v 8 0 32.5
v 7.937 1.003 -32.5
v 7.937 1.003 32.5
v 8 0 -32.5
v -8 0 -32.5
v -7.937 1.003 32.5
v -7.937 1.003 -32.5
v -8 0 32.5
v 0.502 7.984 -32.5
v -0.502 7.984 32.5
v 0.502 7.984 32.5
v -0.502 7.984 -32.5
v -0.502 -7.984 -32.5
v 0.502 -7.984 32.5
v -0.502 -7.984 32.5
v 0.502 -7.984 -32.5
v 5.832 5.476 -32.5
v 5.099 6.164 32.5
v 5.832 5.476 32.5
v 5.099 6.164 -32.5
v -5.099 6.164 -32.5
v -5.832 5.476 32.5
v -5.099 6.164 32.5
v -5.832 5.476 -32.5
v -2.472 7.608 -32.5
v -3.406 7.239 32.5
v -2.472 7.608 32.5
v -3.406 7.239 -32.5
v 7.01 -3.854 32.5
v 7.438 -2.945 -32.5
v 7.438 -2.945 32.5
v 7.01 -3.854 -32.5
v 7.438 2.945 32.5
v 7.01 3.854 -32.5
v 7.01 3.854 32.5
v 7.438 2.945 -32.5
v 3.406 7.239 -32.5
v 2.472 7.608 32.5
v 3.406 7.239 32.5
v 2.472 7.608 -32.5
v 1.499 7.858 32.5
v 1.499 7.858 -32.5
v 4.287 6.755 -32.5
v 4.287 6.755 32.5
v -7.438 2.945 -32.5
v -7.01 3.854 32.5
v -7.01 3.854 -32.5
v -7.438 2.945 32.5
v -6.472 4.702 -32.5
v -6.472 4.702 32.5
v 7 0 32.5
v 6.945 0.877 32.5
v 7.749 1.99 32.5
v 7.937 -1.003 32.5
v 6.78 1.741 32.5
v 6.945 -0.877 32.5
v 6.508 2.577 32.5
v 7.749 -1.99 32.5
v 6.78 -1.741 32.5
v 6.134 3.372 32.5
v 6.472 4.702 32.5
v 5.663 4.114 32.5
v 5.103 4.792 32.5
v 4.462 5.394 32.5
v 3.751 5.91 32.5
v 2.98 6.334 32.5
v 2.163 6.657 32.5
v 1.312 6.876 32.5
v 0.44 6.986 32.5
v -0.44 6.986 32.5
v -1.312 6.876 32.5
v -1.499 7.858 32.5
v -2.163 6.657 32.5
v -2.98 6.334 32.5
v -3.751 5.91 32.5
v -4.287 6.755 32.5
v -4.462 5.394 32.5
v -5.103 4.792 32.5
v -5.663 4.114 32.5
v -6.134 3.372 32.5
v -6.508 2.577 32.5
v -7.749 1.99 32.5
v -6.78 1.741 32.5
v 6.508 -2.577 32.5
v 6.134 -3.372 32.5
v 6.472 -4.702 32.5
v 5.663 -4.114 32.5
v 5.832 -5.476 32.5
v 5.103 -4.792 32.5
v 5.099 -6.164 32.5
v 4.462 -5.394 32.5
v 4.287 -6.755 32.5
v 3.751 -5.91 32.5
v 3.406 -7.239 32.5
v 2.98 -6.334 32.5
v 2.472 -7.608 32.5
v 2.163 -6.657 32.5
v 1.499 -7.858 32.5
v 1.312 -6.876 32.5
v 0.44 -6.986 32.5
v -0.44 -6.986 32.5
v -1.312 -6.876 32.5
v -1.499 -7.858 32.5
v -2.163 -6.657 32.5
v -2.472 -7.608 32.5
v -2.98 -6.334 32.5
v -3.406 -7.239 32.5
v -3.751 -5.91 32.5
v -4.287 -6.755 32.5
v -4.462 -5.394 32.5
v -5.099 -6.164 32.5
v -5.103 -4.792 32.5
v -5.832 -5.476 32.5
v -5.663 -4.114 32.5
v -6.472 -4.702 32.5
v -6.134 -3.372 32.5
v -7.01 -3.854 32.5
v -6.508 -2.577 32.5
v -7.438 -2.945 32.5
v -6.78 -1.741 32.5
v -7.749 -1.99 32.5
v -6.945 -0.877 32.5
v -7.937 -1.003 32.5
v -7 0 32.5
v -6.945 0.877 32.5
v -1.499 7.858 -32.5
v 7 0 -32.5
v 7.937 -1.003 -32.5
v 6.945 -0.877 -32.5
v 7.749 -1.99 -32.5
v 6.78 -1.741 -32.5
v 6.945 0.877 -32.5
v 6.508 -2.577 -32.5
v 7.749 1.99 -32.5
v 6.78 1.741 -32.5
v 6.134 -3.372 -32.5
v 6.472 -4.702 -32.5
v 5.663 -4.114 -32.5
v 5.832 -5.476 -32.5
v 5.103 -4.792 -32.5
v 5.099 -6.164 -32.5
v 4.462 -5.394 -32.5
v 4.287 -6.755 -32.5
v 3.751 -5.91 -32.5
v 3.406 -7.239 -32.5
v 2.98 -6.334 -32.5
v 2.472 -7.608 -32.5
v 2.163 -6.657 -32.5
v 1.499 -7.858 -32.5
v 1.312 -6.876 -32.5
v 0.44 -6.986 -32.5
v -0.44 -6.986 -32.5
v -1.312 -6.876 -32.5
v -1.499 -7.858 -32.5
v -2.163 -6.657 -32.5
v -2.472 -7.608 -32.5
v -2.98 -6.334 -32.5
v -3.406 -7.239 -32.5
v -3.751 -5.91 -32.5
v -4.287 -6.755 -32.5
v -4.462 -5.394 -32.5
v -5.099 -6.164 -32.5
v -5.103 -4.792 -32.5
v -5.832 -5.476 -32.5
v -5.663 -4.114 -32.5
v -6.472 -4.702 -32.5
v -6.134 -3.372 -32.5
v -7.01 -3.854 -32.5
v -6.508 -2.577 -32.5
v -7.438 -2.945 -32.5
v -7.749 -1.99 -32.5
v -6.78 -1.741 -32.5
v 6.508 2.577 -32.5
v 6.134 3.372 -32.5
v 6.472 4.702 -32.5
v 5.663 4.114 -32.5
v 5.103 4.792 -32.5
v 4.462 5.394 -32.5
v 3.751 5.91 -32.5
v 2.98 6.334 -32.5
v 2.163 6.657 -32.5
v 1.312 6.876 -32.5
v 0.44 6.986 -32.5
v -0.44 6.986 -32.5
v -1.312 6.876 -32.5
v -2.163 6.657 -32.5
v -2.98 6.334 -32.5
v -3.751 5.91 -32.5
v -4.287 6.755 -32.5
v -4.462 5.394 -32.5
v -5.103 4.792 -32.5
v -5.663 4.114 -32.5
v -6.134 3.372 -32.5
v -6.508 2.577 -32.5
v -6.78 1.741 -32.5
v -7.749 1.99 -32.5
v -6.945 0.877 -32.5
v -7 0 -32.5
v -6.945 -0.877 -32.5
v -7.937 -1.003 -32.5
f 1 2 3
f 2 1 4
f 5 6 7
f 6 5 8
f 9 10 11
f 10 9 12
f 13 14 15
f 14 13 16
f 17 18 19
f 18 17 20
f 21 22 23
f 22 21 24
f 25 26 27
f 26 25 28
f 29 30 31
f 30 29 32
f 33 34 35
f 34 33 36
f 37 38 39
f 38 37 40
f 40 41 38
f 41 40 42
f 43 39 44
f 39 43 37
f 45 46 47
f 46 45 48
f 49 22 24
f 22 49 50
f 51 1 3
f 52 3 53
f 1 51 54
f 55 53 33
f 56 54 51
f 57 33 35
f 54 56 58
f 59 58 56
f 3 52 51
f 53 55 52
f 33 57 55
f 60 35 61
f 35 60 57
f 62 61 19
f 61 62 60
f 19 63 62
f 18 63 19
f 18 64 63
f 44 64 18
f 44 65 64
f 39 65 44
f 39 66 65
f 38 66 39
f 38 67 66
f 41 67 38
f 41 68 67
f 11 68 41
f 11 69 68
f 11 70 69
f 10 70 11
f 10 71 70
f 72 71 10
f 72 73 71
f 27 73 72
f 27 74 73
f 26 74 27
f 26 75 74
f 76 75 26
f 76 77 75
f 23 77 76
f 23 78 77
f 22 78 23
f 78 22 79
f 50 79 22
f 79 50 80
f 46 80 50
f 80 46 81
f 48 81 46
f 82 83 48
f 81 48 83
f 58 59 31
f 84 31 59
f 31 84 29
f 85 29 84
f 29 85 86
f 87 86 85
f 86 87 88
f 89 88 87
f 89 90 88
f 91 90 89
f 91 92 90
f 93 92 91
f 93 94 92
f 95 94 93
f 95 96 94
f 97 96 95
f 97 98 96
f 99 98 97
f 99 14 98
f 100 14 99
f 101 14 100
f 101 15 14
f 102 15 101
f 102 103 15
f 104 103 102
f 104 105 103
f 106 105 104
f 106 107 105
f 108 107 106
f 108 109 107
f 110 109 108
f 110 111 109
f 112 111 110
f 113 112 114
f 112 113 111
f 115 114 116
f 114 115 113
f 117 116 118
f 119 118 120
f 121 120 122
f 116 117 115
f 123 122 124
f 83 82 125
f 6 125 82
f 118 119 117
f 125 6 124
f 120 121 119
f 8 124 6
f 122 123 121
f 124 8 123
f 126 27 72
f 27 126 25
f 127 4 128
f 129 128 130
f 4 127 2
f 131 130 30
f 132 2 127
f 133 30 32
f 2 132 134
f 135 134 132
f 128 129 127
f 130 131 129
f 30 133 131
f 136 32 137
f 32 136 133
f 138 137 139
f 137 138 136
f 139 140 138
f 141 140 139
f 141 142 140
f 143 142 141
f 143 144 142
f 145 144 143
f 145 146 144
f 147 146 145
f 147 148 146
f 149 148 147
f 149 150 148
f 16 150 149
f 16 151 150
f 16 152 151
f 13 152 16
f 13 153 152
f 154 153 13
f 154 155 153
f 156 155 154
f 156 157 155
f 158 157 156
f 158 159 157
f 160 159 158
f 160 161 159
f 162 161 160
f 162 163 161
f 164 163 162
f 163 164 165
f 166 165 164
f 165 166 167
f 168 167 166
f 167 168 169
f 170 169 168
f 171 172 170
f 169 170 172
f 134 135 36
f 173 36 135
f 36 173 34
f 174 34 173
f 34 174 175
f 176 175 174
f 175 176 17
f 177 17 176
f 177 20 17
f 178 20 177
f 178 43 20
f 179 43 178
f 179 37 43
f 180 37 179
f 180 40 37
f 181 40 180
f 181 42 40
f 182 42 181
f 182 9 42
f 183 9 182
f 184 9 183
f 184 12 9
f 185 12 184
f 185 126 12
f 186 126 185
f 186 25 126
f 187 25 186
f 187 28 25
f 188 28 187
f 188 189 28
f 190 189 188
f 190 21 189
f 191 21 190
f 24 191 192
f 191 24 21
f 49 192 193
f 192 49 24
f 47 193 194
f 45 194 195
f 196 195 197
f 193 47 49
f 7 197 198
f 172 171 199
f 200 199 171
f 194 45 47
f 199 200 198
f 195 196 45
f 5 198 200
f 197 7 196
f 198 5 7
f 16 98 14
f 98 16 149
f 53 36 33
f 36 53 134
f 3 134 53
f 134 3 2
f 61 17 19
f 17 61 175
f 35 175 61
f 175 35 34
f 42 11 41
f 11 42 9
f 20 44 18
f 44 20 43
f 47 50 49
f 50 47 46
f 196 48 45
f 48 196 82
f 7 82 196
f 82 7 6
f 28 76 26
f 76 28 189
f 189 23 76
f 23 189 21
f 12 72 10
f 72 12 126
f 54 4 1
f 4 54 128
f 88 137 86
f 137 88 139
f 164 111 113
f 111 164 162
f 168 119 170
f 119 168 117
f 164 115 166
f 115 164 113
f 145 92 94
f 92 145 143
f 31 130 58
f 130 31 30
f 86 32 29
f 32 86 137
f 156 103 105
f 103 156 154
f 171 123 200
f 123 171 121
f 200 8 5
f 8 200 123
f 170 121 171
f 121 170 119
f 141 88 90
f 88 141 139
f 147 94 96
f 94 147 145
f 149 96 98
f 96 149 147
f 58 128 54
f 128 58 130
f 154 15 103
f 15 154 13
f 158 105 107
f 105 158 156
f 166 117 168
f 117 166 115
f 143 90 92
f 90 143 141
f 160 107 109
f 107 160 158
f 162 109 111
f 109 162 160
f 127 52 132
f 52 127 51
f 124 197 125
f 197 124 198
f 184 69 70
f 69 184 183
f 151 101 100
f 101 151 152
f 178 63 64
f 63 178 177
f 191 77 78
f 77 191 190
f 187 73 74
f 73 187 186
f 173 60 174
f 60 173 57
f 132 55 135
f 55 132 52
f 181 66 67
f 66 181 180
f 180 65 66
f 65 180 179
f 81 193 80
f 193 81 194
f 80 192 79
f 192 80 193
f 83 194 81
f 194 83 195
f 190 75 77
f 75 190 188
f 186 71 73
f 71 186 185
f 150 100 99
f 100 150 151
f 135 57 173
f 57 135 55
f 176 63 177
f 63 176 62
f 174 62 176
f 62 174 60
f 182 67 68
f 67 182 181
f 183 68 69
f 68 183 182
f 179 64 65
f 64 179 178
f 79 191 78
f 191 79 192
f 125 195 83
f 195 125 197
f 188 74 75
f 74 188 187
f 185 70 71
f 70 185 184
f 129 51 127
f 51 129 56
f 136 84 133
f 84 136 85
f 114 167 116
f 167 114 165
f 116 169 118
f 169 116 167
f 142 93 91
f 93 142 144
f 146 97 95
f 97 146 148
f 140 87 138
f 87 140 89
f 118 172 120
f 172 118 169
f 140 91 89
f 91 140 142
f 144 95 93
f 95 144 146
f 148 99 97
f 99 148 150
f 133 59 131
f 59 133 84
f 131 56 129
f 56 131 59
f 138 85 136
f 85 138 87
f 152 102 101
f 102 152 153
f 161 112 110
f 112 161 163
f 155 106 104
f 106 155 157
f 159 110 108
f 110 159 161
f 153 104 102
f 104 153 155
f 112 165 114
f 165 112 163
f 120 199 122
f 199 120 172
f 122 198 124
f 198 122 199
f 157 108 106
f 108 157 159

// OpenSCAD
$fn = 50;


difference() {
	union() {
		translate(v = [0, 0, -32.5000000000]) {
			cylinder(h = 65, r = 8.0000000000);
		}
	}
	union() {
		translate(v = [0, 0, -100.0000000000]) {
			cylinder(h = 200, r = 7);
		}
	}
}
